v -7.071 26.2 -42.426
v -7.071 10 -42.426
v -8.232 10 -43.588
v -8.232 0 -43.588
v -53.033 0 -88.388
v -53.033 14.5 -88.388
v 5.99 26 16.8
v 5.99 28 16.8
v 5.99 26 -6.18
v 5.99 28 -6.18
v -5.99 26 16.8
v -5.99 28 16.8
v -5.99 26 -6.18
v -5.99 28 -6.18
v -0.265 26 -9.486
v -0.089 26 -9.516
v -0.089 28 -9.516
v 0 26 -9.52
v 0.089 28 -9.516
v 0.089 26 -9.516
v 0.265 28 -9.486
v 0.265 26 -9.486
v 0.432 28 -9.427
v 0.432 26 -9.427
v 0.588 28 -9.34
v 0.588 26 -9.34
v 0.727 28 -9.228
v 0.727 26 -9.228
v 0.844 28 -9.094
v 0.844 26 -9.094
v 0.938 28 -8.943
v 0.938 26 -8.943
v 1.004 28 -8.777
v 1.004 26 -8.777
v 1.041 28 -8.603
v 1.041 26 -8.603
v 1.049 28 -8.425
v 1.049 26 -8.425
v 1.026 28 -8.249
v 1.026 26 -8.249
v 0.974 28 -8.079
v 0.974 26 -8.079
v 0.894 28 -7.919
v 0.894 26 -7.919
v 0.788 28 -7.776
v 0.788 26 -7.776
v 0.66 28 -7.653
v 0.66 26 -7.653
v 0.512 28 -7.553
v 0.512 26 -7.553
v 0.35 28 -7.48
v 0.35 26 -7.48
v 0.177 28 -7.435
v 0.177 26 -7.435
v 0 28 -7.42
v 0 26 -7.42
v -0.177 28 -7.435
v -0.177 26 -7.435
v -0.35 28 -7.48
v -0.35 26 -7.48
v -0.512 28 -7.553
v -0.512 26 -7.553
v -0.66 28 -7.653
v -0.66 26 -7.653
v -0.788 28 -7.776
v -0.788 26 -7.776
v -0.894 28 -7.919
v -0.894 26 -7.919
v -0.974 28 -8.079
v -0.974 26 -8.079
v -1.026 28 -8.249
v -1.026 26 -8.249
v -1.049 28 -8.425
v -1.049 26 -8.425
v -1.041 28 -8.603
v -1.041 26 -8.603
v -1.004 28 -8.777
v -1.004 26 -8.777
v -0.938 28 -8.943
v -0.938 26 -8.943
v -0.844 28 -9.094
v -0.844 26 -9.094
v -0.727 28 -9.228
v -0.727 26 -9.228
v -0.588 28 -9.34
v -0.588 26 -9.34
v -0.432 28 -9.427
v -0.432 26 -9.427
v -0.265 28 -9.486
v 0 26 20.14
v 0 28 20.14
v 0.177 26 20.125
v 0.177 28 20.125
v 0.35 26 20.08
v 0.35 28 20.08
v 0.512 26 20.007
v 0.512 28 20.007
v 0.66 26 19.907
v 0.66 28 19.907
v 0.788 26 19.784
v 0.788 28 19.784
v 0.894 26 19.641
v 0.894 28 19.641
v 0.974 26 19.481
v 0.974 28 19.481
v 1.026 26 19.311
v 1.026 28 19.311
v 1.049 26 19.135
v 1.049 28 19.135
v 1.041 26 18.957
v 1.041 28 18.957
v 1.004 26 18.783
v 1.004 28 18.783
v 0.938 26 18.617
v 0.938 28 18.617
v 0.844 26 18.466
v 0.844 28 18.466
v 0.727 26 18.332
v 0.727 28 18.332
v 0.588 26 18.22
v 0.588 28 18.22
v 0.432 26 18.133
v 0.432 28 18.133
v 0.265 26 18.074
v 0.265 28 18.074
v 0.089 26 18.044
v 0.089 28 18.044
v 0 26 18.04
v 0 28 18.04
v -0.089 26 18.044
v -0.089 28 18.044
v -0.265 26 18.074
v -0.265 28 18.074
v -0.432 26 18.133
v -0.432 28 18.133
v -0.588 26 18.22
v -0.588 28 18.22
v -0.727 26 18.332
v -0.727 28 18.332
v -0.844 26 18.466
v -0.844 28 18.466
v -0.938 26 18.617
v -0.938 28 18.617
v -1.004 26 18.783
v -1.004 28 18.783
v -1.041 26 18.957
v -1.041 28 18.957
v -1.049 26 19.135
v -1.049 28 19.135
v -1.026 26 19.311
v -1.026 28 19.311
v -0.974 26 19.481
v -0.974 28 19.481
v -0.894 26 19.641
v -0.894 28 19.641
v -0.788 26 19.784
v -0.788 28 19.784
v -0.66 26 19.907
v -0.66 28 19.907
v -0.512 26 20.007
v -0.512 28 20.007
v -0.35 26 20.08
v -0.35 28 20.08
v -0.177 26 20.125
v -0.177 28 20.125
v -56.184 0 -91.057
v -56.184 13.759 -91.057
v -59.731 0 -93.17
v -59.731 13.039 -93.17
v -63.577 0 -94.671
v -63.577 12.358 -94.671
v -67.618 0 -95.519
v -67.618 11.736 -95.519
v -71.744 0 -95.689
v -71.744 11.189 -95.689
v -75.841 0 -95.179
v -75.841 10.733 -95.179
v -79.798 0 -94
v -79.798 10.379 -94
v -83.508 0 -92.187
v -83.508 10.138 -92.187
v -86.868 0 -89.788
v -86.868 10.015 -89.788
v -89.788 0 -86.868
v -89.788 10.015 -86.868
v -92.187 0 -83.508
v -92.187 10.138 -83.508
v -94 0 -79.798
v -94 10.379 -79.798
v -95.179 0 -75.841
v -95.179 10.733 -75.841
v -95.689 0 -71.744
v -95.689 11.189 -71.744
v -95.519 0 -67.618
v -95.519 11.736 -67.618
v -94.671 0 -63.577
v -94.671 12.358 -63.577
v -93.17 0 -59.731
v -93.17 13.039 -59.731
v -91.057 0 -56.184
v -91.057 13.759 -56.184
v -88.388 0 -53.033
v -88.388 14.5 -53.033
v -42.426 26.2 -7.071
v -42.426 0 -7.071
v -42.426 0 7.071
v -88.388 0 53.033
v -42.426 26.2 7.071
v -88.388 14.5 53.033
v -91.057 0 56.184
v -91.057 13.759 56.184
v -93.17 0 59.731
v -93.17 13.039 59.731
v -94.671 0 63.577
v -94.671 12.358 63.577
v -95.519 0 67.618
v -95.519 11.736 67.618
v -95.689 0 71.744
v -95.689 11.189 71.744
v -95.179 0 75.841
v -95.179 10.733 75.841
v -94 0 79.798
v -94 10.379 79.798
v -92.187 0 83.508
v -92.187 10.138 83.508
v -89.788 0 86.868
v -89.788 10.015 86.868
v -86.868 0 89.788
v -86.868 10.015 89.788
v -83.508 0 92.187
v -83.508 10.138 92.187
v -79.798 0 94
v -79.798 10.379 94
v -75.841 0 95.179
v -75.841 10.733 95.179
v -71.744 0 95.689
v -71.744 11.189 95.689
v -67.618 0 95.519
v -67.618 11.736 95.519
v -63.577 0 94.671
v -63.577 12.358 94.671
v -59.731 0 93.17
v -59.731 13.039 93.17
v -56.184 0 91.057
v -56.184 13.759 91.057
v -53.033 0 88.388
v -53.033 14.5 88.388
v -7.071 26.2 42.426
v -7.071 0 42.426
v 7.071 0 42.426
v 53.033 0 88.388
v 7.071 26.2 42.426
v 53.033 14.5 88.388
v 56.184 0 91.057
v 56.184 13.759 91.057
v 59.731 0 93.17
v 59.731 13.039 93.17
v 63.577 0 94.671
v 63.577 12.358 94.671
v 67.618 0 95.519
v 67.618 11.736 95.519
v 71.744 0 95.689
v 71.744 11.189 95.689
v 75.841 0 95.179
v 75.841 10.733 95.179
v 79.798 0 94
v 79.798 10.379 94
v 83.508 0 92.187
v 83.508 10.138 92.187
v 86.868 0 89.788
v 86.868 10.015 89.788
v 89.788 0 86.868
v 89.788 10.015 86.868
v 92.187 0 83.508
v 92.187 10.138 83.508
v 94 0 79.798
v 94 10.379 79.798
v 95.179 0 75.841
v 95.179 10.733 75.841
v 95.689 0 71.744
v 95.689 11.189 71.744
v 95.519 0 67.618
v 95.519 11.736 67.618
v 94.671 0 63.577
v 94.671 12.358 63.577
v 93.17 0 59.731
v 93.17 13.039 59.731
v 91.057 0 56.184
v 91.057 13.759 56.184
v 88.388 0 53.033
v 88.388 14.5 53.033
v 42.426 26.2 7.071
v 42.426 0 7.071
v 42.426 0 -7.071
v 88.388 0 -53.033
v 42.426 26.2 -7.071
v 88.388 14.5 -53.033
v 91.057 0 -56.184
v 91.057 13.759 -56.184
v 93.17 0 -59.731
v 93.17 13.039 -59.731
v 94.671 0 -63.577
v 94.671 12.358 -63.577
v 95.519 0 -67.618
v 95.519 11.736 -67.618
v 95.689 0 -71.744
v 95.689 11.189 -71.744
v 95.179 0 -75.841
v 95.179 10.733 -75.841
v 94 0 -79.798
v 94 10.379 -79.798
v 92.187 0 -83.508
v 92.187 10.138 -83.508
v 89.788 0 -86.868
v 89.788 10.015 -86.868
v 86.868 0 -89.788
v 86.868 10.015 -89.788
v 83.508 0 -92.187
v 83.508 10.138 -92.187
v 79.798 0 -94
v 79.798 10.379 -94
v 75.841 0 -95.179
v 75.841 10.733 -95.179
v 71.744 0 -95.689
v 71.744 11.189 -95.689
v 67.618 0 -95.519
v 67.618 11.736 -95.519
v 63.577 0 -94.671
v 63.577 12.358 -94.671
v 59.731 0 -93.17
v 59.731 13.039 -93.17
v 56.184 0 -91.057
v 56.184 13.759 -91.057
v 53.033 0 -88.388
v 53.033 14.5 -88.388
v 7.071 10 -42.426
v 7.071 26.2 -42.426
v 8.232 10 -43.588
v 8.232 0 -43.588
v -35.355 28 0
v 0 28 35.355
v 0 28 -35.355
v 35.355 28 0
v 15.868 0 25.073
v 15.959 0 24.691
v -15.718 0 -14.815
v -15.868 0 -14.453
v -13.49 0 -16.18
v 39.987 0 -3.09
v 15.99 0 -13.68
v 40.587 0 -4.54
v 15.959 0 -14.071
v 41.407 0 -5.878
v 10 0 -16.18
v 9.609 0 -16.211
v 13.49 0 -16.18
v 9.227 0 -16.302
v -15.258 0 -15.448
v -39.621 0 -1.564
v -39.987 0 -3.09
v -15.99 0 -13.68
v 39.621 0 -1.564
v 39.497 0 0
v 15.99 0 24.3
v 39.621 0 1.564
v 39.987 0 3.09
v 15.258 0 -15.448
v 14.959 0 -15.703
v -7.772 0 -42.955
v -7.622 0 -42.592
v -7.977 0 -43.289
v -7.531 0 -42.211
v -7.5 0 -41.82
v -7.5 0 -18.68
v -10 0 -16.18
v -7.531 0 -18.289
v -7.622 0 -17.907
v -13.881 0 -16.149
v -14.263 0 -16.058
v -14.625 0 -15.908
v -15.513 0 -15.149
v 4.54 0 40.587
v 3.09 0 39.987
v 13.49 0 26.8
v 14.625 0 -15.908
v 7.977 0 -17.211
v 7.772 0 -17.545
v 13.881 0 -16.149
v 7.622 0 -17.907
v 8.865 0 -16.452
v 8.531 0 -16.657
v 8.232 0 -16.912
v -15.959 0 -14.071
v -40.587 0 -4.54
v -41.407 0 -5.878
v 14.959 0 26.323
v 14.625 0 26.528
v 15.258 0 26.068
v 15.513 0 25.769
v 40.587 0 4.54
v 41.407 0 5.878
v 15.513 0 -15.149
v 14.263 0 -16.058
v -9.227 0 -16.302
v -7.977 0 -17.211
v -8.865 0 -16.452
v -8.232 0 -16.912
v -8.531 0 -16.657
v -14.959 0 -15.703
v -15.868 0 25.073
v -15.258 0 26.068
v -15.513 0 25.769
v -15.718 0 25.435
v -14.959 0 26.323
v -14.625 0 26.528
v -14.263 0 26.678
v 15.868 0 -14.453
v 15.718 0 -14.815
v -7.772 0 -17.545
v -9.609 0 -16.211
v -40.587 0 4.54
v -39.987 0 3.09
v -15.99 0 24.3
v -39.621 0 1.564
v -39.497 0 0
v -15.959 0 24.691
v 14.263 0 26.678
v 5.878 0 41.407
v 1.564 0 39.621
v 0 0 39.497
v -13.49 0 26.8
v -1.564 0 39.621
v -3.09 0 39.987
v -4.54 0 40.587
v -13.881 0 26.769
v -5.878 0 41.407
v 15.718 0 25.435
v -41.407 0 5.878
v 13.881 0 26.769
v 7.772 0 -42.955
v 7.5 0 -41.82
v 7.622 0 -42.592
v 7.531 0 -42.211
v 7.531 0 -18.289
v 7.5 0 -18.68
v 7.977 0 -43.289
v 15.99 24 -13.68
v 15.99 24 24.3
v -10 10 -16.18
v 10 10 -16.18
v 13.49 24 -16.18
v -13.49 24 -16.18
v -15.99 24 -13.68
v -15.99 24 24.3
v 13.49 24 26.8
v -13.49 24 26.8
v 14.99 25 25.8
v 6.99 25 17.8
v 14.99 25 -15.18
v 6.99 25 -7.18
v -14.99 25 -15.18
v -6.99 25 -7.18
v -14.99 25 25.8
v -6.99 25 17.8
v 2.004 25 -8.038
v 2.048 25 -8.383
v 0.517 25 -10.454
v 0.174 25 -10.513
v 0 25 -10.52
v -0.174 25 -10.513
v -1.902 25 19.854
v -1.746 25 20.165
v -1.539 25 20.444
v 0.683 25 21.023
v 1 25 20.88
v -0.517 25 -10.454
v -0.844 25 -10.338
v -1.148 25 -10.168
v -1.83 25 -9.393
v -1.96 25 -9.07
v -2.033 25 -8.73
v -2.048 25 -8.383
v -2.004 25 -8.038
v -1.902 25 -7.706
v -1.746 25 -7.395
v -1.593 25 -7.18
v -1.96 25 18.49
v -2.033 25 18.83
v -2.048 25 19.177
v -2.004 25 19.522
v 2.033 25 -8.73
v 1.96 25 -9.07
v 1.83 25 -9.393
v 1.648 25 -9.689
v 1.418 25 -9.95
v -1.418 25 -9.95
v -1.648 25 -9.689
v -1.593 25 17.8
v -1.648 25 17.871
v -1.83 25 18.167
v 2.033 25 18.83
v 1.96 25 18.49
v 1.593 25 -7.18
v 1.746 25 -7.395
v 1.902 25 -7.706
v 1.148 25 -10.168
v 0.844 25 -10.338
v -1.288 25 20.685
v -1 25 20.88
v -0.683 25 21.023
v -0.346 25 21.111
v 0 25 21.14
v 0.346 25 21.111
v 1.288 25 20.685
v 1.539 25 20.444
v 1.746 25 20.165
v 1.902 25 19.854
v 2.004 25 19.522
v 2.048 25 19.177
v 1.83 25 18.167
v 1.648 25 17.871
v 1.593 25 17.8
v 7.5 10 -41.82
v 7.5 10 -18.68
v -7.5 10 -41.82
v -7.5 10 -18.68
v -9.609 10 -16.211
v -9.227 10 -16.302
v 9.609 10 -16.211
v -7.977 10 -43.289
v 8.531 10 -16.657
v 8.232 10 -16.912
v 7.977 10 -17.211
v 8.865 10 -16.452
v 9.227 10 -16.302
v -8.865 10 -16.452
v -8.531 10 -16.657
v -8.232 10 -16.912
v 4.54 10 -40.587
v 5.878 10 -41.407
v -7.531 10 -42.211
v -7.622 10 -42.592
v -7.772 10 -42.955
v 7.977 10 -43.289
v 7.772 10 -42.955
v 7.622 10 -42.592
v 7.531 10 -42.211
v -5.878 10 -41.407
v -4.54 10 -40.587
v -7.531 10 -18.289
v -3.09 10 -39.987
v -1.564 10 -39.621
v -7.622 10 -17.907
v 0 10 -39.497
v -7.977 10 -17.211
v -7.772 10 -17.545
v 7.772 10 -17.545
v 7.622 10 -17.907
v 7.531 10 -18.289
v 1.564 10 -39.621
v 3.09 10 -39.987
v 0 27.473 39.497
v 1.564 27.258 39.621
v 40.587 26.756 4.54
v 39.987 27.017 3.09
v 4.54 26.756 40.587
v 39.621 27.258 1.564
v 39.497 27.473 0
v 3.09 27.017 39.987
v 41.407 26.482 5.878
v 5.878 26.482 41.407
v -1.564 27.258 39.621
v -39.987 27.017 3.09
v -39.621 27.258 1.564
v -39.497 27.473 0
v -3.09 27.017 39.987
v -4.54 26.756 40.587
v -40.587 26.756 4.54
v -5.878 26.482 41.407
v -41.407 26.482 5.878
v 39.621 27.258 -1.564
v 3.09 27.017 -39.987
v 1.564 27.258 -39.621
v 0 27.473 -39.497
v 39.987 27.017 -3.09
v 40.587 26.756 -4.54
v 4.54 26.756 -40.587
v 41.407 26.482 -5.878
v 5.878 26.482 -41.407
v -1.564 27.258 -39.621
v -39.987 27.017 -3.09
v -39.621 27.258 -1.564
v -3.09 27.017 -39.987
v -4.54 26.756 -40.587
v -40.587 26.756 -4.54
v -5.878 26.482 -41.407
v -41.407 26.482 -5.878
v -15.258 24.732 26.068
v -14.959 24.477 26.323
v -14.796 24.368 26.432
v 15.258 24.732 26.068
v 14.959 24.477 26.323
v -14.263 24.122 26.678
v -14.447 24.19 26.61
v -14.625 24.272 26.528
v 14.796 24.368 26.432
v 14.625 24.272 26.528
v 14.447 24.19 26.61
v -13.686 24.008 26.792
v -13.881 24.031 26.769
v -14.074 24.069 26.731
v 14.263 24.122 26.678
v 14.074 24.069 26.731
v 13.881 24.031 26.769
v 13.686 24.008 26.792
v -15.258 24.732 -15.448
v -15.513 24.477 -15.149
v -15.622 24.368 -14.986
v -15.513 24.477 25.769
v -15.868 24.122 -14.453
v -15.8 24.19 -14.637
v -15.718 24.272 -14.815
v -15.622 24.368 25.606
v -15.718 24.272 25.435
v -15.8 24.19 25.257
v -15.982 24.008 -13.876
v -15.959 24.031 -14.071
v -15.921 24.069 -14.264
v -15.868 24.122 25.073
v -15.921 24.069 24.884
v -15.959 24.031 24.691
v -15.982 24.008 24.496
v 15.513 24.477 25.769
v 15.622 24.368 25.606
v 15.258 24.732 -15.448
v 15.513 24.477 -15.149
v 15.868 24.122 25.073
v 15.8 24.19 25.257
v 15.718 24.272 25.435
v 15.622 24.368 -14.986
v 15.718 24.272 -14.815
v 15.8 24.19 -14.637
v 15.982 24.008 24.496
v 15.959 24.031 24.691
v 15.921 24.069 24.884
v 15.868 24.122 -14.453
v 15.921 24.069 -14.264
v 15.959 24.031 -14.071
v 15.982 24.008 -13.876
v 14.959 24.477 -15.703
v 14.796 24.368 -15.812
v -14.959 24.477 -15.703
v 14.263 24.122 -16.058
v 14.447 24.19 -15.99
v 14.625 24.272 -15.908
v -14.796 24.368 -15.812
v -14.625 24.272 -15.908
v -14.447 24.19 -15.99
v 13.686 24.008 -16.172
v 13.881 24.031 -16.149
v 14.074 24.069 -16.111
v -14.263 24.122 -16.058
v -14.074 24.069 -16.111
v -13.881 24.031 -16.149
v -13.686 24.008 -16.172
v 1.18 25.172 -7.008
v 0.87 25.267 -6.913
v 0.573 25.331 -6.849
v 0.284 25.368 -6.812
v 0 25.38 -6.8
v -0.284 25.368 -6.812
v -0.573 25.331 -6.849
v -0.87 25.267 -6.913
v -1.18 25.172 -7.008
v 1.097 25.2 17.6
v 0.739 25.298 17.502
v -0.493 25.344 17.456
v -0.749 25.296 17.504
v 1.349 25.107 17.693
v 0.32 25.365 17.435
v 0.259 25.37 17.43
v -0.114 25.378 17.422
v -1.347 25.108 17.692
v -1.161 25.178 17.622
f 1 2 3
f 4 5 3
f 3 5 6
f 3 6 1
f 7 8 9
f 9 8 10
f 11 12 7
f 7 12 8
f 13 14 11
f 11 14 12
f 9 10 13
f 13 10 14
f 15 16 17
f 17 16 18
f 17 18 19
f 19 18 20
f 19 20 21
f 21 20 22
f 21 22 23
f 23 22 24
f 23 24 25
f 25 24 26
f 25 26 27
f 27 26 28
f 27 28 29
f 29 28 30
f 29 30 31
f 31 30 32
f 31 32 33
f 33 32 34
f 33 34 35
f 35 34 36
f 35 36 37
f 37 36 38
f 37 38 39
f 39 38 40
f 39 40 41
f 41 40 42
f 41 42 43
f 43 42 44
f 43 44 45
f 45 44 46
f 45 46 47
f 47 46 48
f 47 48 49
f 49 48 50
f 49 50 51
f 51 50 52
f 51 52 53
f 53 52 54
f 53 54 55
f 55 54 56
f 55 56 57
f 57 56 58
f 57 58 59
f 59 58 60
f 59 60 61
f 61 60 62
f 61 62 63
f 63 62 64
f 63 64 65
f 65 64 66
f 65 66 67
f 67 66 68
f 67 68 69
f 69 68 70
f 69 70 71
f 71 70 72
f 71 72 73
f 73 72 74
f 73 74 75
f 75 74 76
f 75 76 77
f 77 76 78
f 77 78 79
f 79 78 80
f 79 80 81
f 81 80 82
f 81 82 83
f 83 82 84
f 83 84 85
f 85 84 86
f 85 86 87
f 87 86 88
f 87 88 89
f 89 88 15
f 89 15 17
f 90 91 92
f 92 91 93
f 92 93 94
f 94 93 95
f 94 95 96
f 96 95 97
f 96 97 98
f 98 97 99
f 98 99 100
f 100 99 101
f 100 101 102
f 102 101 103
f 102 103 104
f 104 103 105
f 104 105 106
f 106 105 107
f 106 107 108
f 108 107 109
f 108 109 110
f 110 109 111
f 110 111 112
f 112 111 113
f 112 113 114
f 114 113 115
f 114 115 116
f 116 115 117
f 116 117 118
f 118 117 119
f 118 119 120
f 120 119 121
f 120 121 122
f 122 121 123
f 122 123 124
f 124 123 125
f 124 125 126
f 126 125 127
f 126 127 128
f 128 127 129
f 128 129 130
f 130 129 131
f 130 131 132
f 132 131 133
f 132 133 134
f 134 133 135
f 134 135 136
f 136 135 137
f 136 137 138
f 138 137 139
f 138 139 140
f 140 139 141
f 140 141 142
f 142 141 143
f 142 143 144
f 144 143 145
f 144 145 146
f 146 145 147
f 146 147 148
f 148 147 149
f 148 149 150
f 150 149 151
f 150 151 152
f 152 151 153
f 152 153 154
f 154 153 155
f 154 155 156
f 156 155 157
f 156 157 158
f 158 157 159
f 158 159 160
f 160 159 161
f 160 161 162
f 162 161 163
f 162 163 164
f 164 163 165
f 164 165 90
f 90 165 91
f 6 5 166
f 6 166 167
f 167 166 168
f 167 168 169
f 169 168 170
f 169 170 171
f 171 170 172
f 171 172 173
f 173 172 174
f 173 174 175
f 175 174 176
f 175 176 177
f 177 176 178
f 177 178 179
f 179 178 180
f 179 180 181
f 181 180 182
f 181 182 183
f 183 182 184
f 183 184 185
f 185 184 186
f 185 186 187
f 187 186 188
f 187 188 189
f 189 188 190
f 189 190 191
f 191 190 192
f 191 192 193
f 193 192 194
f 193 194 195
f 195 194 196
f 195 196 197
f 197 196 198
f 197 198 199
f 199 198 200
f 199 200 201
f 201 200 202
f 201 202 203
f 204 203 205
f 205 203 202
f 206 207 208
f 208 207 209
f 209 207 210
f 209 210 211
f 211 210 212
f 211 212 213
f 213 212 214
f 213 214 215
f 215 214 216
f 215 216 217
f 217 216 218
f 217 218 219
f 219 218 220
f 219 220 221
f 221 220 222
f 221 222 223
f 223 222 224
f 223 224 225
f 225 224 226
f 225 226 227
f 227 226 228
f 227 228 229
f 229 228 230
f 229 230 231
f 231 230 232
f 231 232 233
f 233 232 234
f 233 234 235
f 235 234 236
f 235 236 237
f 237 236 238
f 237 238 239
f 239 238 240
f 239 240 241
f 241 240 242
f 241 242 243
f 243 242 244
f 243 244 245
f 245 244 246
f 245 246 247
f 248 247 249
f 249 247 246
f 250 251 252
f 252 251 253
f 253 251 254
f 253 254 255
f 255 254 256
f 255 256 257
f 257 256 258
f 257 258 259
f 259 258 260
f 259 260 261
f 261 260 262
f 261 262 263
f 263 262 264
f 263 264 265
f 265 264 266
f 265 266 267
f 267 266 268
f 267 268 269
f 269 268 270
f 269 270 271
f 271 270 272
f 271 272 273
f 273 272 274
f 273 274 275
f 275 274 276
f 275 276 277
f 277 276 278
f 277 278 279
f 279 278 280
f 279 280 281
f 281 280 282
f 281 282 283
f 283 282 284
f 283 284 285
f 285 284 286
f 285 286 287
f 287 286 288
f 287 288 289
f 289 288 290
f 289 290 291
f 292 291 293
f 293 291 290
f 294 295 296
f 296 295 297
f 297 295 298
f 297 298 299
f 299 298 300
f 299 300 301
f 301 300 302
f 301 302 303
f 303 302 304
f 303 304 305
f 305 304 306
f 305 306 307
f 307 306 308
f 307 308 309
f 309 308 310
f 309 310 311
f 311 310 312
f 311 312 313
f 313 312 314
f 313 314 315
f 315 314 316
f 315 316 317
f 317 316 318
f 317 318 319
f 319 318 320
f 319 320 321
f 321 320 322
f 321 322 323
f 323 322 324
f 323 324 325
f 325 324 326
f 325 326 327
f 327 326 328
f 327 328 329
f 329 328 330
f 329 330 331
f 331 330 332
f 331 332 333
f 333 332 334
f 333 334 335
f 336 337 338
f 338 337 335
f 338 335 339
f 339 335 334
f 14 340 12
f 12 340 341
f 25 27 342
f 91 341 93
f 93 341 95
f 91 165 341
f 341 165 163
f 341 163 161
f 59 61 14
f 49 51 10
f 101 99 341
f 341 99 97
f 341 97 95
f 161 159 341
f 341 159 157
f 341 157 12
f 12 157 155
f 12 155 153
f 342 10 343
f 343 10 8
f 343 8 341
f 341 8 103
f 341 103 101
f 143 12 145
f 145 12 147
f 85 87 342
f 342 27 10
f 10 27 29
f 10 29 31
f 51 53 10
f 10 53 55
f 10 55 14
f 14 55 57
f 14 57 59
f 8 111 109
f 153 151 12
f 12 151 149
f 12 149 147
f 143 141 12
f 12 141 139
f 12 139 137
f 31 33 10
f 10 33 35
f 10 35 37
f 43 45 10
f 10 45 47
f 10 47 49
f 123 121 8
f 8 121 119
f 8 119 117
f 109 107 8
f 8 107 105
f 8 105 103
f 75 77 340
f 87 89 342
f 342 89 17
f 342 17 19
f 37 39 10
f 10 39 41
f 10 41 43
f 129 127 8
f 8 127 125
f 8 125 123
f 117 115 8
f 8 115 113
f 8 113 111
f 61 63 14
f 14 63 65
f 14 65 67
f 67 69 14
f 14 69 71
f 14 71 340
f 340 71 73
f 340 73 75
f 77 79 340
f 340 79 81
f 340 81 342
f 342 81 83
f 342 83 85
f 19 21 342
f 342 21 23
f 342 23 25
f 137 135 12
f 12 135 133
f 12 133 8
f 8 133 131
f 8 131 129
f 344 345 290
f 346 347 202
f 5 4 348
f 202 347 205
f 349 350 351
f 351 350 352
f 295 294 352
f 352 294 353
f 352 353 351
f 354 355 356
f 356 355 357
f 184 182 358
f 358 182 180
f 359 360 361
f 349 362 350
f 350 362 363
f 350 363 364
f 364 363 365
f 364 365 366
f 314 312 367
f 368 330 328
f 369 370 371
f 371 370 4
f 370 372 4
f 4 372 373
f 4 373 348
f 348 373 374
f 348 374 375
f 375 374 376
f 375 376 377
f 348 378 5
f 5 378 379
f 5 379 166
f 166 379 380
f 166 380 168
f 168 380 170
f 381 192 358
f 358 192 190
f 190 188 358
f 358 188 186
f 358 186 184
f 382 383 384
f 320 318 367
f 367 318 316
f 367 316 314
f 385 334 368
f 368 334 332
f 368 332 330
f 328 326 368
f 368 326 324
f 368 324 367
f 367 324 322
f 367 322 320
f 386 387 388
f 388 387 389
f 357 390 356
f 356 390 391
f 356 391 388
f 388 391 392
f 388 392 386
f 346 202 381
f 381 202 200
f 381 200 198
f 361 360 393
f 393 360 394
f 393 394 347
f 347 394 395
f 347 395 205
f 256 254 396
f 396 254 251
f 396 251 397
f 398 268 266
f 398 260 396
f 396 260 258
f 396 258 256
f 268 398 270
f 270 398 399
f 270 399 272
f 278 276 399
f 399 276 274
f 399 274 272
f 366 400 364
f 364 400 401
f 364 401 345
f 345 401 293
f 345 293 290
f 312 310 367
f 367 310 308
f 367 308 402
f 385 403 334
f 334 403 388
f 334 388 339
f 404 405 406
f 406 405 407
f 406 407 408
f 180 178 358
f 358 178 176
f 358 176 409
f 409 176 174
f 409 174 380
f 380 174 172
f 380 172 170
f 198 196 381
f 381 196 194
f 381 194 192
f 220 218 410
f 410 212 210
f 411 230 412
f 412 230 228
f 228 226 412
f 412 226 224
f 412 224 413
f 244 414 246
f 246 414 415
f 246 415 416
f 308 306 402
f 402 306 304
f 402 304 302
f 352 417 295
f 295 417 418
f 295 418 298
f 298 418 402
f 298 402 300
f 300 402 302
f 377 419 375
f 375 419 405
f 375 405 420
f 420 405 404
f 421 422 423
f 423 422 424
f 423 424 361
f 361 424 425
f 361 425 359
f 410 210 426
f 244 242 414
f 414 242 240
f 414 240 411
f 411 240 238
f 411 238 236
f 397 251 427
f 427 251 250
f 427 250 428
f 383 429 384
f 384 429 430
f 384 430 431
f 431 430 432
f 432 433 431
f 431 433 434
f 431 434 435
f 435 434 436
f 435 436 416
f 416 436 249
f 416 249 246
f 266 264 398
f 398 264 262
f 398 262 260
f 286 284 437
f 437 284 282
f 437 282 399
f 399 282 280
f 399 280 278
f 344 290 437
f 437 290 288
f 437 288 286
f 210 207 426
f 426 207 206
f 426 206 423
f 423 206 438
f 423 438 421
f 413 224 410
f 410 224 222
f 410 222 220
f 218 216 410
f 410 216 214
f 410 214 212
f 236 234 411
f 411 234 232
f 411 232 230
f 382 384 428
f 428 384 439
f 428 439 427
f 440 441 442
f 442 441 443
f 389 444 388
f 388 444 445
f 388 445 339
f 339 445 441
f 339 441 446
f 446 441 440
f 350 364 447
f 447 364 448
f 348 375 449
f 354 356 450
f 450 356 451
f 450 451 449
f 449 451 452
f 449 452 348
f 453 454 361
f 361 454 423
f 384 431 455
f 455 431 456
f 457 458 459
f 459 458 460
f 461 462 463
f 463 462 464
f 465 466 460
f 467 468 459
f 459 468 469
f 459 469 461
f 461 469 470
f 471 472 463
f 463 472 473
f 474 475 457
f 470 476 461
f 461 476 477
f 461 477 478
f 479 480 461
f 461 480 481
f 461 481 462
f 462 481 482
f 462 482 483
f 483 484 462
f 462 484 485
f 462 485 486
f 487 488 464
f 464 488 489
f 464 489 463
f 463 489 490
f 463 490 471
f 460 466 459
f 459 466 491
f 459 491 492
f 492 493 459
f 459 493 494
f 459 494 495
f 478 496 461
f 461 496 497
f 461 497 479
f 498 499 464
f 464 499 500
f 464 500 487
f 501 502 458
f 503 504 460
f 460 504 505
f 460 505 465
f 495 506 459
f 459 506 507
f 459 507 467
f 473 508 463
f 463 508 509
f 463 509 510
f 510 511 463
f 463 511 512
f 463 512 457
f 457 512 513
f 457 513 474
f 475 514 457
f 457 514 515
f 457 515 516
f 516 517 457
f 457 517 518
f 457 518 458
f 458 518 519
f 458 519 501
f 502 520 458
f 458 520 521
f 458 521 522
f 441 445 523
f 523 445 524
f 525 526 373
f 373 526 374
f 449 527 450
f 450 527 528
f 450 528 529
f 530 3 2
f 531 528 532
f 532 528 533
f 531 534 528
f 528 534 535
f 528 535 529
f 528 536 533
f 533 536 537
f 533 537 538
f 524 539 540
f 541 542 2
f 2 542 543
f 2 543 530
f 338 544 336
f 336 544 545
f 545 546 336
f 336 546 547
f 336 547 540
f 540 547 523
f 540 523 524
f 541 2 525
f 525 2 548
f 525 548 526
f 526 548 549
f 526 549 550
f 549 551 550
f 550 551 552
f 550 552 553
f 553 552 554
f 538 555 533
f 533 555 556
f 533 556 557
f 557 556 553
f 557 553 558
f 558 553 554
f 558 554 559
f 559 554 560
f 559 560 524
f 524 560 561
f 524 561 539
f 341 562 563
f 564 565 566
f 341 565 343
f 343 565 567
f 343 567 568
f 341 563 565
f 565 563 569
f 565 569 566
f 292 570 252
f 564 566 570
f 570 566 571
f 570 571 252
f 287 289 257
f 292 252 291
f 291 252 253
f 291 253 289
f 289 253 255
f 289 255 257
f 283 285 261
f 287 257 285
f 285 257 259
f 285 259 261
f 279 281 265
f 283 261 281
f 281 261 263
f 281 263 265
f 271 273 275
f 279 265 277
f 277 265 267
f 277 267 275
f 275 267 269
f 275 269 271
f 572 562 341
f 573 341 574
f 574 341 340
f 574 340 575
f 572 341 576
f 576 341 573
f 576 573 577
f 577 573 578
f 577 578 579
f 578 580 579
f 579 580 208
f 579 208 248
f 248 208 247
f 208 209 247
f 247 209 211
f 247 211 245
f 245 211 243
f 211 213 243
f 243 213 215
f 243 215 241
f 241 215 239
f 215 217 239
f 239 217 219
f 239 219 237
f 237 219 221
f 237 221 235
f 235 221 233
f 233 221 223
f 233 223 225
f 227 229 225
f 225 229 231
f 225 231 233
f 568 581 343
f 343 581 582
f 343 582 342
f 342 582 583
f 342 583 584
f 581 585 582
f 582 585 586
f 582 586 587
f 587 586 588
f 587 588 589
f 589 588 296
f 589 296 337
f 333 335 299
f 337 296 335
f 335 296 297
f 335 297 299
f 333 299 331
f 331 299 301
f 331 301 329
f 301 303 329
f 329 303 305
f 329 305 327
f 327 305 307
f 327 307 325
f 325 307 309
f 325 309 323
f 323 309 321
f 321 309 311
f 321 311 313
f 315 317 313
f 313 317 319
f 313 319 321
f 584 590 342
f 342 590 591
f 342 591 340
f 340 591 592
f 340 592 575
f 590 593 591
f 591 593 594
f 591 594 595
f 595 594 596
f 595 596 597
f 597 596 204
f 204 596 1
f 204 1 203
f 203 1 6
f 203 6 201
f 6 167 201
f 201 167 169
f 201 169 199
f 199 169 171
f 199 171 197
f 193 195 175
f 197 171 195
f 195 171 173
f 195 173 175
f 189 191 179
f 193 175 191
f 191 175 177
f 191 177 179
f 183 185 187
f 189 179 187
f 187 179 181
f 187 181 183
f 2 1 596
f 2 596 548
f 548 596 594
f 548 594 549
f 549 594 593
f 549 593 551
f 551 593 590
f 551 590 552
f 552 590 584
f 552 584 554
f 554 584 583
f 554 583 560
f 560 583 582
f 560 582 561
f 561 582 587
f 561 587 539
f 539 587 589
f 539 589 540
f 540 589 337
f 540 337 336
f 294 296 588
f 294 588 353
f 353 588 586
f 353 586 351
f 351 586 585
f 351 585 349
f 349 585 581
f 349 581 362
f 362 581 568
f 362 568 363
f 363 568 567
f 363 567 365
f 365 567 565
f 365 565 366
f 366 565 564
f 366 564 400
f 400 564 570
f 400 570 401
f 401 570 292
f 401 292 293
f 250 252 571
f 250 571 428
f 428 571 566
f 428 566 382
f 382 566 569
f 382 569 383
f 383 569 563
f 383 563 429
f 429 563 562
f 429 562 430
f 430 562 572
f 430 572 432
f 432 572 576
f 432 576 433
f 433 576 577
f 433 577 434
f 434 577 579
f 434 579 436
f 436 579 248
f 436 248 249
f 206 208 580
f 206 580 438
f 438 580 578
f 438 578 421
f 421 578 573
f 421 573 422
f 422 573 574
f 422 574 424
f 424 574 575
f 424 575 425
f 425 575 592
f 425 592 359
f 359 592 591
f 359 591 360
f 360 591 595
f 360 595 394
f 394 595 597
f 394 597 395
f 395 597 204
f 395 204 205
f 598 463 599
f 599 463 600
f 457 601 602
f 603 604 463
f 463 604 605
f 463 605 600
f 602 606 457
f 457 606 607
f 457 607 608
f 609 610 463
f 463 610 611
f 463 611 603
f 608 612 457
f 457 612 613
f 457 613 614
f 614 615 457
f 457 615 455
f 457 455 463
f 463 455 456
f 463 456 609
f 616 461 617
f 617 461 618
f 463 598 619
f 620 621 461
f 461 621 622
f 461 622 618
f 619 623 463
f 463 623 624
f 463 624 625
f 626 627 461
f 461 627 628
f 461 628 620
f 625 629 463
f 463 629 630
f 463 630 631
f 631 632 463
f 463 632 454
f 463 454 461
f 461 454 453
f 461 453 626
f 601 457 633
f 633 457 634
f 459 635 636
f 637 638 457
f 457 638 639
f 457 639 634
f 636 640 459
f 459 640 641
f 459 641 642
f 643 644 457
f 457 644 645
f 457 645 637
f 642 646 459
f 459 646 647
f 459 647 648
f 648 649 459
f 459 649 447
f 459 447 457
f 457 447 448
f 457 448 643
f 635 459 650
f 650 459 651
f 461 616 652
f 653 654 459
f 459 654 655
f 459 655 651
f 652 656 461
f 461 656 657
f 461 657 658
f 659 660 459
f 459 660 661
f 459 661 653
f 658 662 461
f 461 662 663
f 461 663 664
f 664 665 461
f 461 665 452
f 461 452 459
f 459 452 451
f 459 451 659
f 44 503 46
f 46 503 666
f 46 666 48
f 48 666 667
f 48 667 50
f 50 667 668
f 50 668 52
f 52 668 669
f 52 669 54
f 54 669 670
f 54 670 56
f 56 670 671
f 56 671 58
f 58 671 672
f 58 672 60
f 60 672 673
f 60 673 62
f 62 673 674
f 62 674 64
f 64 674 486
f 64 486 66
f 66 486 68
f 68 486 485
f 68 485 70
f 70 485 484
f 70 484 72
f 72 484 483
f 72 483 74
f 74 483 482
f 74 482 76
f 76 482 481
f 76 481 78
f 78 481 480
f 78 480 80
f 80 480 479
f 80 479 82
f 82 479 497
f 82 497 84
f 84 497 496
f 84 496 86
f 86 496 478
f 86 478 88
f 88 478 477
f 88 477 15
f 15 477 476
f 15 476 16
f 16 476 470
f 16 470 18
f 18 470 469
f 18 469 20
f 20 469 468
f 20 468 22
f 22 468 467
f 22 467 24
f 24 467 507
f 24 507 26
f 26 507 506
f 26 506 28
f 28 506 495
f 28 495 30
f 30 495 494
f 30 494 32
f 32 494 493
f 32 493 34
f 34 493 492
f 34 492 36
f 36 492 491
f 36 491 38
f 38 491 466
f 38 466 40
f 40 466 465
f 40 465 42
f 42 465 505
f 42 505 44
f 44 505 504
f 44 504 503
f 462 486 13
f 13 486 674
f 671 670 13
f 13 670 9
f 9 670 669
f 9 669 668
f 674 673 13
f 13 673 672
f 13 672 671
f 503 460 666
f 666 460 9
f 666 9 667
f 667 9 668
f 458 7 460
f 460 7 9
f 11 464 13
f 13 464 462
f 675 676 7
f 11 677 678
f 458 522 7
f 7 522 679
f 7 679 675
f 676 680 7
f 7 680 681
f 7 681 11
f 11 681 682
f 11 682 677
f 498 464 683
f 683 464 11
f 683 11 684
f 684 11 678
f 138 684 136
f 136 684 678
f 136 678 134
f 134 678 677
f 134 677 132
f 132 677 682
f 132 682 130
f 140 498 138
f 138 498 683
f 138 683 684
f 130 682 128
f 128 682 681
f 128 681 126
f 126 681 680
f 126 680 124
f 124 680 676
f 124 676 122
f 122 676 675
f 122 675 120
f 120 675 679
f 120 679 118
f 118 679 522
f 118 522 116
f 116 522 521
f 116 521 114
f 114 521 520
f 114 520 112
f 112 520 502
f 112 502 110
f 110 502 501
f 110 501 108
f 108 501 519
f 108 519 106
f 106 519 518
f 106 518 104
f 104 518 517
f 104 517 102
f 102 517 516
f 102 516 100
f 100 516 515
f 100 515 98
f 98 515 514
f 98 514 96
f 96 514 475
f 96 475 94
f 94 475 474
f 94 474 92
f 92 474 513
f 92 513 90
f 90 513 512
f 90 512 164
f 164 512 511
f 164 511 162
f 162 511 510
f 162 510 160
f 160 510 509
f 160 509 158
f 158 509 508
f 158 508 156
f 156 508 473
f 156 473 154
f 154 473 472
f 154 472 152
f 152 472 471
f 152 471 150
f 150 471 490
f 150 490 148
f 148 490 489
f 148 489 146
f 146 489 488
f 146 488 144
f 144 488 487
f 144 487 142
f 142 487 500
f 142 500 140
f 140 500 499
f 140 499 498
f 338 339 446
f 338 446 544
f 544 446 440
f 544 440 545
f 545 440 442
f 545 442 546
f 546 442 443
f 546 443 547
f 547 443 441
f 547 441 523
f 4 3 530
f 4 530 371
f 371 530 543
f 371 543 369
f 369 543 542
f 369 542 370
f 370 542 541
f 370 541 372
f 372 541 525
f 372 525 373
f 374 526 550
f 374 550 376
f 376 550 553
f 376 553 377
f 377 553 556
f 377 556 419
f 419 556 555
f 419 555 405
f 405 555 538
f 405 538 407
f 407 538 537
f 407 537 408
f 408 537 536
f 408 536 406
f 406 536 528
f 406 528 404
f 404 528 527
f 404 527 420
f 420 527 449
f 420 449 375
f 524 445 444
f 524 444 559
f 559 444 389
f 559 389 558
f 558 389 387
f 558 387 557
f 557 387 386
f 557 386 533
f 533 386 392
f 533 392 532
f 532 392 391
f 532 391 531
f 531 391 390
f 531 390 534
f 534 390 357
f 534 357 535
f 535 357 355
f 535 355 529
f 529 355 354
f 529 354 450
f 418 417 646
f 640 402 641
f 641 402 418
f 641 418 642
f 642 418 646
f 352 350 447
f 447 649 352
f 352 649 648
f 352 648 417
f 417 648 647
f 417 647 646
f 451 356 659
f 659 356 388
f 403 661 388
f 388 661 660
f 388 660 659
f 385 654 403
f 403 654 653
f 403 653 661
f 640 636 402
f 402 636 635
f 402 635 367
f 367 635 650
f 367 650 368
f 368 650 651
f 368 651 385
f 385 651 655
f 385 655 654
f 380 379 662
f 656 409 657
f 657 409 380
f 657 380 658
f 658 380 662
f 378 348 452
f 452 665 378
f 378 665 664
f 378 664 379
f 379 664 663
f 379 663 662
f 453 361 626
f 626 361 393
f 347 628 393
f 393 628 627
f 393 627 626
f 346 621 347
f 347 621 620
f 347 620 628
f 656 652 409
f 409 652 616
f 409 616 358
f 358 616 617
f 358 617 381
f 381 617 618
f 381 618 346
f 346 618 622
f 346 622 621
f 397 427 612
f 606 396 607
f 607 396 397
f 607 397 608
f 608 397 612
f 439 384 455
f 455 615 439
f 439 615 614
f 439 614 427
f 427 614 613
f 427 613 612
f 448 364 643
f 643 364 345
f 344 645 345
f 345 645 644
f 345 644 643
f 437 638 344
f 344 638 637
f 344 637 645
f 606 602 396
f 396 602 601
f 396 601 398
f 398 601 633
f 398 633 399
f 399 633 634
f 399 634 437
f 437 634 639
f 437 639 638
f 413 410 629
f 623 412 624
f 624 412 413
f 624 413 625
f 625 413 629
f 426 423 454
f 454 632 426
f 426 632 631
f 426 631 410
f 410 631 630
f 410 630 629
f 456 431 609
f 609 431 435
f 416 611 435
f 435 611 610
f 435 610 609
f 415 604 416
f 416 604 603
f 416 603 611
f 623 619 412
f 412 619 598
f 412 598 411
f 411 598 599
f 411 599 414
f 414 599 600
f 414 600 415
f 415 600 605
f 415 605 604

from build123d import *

# Parameters (mm, degrees)
BOSS_EXTRUDE2_DEPTH = 28
SKETCH3_R           = 1.05
SKETCH3_W           = 11.98
SKETCH3_H           = 22.98
CUT_EXTRUDE1_DEPTH  = 28
CUT_EXTRUDE2_START  = -25
SKETCH4_R           = 1.05
SKETCH4_W           = 11.98
SKETCH4_H           = 22.98
CUT_EXTRUDE2_DEPTH  = 25
CUT_EXTRUDE4_DEPTH  = 10
CUT_EXTRUDE5_REACH  = 164.782
CIRPATTERN1_COUNT   = 4
FILLET1_R           = 10
CHAMFER1_SIZE       = 1
FILLET2_R           = 2.5


with BuildPart() as part:
    # Sketch1 → Boss-Extrude2 (new body)
    with BuildSketch(Plane(origin=(0, 0, 0), x_dir=(1, 0, 0), z_dir=(0, 1, 0))):
        with BuildLine():
            Line((0, 35.355339059), (53.033008589, 88.388347648))
            ThreePointArc((53.033008589, 88.388347648), (88.388347648, 88.388347648), (88.388347648, 53.033008589))
            Line((88.388347648, 53.033008589), (35.355339059, 0))
            Line((35.355339059, 0), (88.388347648, -53.033008589))
            ThreePointArc((88.388347648, -53.033008589), (88.388347648, -88.388347648), (53.033008589, -88.388347648))
            Line((53.033008589, -88.388347648), (0, -35.355339059))
            Line((0, -35.355339059), (-53.033008589, -88.388347648))
            ThreePointArc((-53.033008589, -88.388347648), (-88.388347648, -88.388347648), (-88.388347648, -53.033008589))
            Line((-88.388347648, -53.033008589), (-35.355339059, 0))
            Line((-35.355339059, 0), (-88.388347648, 53.033008589))
            ThreePointArc((-88.388347648, 53.033008589), (-88.388347648, 88.388347648), (-53.033008589, 88.388347648))
            Line((-53.033008589, 88.388347648), (0, 35.355339059))
        make_face()
    extrude(amount=BOSS_EXTRUDE2_DEPTH)

    # Sketch3 → Cut-Extrude1 (cut)
    with BuildSketch(Plane(origin=(0, 28, 0), x_dir=(1, 0, 0), z_dir=(0, 1, 0))):
        with Locations(Location((0, 8.47, 0), (0, 0, 270))):
            Circle(SKETCH3_R)
        with Locations(Location((0, -19.09, 0), (0, 0, 90))):
            Circle(SKETCH3_R)
        with Locations((0, -5.31)):
            Rectangle(SKETCH3_W, SKETCH3_H)
    extrude(amount=-CUT_EXTRUDE1_DEPTH, mode=Mode.SUBTRACT)

    # Sketch4 → Cut-Extrude2 (cut)
    with BuildSketch(Plane.XZ.offset(CUT_EXTRUDE2_START)):
        Polygon((15.99, -16.18), (15.99, 26.8), (7.5, 26.8), (-7.5, 26.8), (-15.99, 26.8), (-15.99, -16.18), (-7.5, -16.18), (7.5, -16.18), align=None)
        with Locations(Location((0, -8.47, 0), (0, 0, 90))):
            Circle(SKETCH4_R, mode=Mode.SUBTRACT)
        with Locations(Location((0, 19.09, 0), (0, 0, 270))):
            Circle(SKETCH4_R, mode=Mode.SUBTRACT)
        with Locations((0, 5.31)):
            Rectangle(SKETCH4_W, SKETCH4_H, mode=Mode.SUBTRACT)
    extrude(amount=CUT_EXTRUDE2_DEPTH, mode=Mode.SUBTRACT)

    # Sketch4<4> → Cut-Extrude4 (cut)
    with BuildSketch(Plane.XZ):
        Polygon((-7.5, -16.18), (-7.5, -42.855339059), (0, -35.355339059), (7.5, -42.855339059), (7.5, -16.18), align=None)
    extrude(amount=-CUT_EXTRUDE4_DEPTH, mode=Mode.SUBTRACT)

    # Sketch5 → Cut-Extrude5 (cut, up to next)
    with BuildSketch(Plane(origin=(17.67766953, 0, -17.67766953), x_dir=(-0.7071067811865419, 0, -0.7071067811865532), z_dir=(0.7071067811865532, 0, -0.7071067811865419)), mode=Mode.PRIVATE) as cut_extrude5_sk1:
        Polygon((-25, 28), (-125, 10), (-125, 28), align=None)
    cut_extrude5_tool1 = extrude(cut_extrude5_sk1.sketch, amount=-CUT_EXTRUDE5_REACH, mode=Mode.PRIVATE) & part.part
    cut_extrude5 = cut_extrude5_tool1.solids().sort_by_distance((82.495791, 22, 47.140452))[0]
    add(cut_extrude5, mode=Mode.SUBTRACT)

    # CirPattern1: Cut-Extrude5 ×4 about axis
    cirpattern1_axis = Axis((0, 0, 0), (0, 1, 0))
    for i in range(1, CIRPATTERN1_COUNT):
        add(cut_extrude5.rotate(cirpattern1_axis, i * 360 / CIRPATTERN1_COUNT), mode=Mode.SUBTRACT)

    # Fillet1
    # the kernel refuses this fillet: 10 mm, written as the material it adds along each edge
    with BuildSketch(Plane(origin=(0, 10, -35.355339059), x_dir=(-0.7071067811865379, 0, -0.7071067811865571), z_dir=(0, 1, 0))) as fillet1_piece_1_section:
        with BuildLine():
            CenterArc((FILLET1_R, -FILLET1_R), FILLET1_R, 90, 90)
            Line((0, -FILLET1_R), (0, 0))
            Line((0, 0), (FILLET1_R, 0))
        make_face()
    fillet1_piece_1 = extrude(amount=43, mode=Mode.PRIVATE)
    fillet1_piece_1 = split(fillet1_piece_1, bisect_by=Plane(origin=(-1.101274735, 27.315624415, -39.63102674), z_dir=(0.12526608641625125, -0.9841833239736955, 0.1252660864162533)), keep=Keep.TOP, mode=Mode.PRIVATE)
    fillet1_piece_1 = split(fillet1_piece_1, bisect_by=Plane(origin=(1.101274735, 27.315624415, -39.63102674), z_dir=(-0.1252660864162533, -0.9841833239736955, 0.12526608641625125)), keep=Keep.TOP, mode=Mode.PRIVATE)
    add(fillet1_piece_1)
    with BuildSketch(Plane(origin=(35.355339059, 0, 0), x_dir=(0.7071067811865419, 0, 0.7071067811865532), z_dir=(0, 1, 0))) as fillet1_piece_2_section:
        with BuildLine():
            CenterArc((FILLET1_R, FILLET1_R), FILLET1_R, 180, 90)
            Line((0, FILLET1_R), (0, 0))
            Line((0, 0), (FILLET1_R, 0))
        make_face()
    fillet1_piece_2 = extrude(amount=53, mode=Mode.PRIVATE)
    fillet1_piece_2 = split(fillet1_piece_2, bisect_by=Plane(origin=(40.257461149, 27.157432054, 1.717716892), z_dir=(-0.12526608641625128, -0.9841833239736955, -0.12526608641625328)), keep=Keep.TOP, mode=Mode.PRIVATE)
    fillet1_piece_2 = split(fillet1_piece_2, bisect_by=Plane(origin=(40.257461149, 27.157432054, -1.717716892), z_dir=(-0.1252660864162533, -0.9841833239736955, 0.12526608641625125)), keep=Keep.TOP, mode=Mode.PRIVATE)
    add(fillet1_piece_2)
    with BuildSketch(Plane(origin=(0, 0, 35.355339059), x_dir=(-0.7071067811865579, 0, 0.7071067811865371), z_dir=(0, 1, 0))) as fillet1_piece_3_section:
        with BuildLine():
            CenterArc((FILLET1_R, FILLET1_R), FILLET1_R, 180, 90)
            Line((0, FILLET1_R), (0, 0))
            Line((0, 0), (FILLET1_R, 0))
        make_face()
    fillet1_piece_3 = extrude(amount=53, mode=Mode.PRIVATE)
    fillet1_piece_3 = split(fillet1_piece_3, bisect_by=Plane(origin=(-1.717716892, 27.157432054, 40.257461149), z_dir=(0.1252660864162533, -0.9841833239736955, -0.12526608641625125)), keep=Keep.TOP, mode=Mode.PRIVATE)
    fillet1_piece_3 = split(fillet1_piece_3, bisect_by=Plane(origin=(1.717716892, 27.157432054, 40.257461149), z_dir=(-0.12526608641625128, -0.9841833239736955, -0.12526608641625328)), keep=Keep.TOP, mode=Mode.PRIVATE)
    add(fillet1_piece_3)
    with BuildSketch(Plane(origin=(-35.355339059, 0, 0), x_dir=(-0.7071067811865355, 0, -0.7071067811865597), z_dir=(0, 1, 0))) as fillet1_piece_4_section:
        with BuildLine():
            CenterArc((FILLET1_R, FILLET1_R), FILLET1_R, 180, 90)
            Line((0, FILLET1_R), (0, 0))
            Line((0, 0), (FILLET1_R, 0))
        make_face()
    fillet1_piece_4 = extrude(amount=53, mode=Mode.PRIVATE)
    fillet1_piece_4 = split(fillet1_piece_4, bisect_by=Plane(origin=(-40.257461149, 27.157432054, -1.717716892), z_dir=(0.12526608641625125, -0.9841833239736955, 0.1252660864162533)), keep=Keep.TOP, mode=Mode.PRIVATE)
    fillet1_piece_4 = split(fillet1_piece_4, bisect_by=Plane(origin=(-40.257461149, 27.157432054, 1.717716892), z_dir=(0.1252660864162533, -0.9841833239736955, -0.12526608641625125)), keep=Keep.TOP, mode=Mode.PRIVATE)
    add(fillet1_piece_4)

    # Chamfer1
    # the kernel refuses this chamfer: 1 mm, written as the material it adds along each edge
    with BuildSketch(Plane(origin=(15.99, 25, -18.751682988), x_dir=(0.027495876610585647, -0.9996219169112968, 0), z_dir=(0, 0, 1)), Plane(origin=(-15.99, 25, 29.371682988), x_dir=(-0.027495876610585647, -0.9996219169112968, 0), z_dir=(0, 0, -1))) as chamfer1_piece_1:
        Polygon((CHAMFER1_SIZE * 0.999621916911, -CHAMFER1_SIZE * 0.0274958766106), (-CHAMFER1_SIZE * 0.0274958766106, -CHAMFER1_SIZE * 0.999621916911), (0, 0), align=None)
    extrude(amount=48.123365976)
    with BuildSketch(Plane(origin=(-18.561682988, 25, -16.18), x_dir=(0, -0.9996219169112968, -0.027495876610585647), z_dir=(1, 0, 0)), Plane(origin=(18.561682988, 25, 26.8), x_dir=(0, -0.9996219169112968, 0.027495876610585647), z_dir=(-1, 0, 0))) as chamfer1_piece_2:
        Polygon((CHAMFER1_SIZE * 0.999621916911, -CHAMFER1_SIZE * 0.0274958766106), (-CHAMFER1_SIZE * 0.0274958766106, -CHAMFER1_SIZE * 0.999621916911), (0, 0), align=None)
    extrude(amount=37.123365976)
    # the kernel refuses this chamfer: 1 mm, written as the material it takes off along each edge
    with BuildSketch(Plane(origin=(-5.99, 25, 16.8), x_dir=(0, 0.9996219169112968, -0.027495876610585647), z_dir=(1, 0, 0)), Plane(origin=(5.99, 25, -6.18), x_dir=(0, 0.9996219169112968, 0.02749587661058651), z_dir=(-1, 0, 0))) as chamfer1_2_piece_1:
        Polygon((CHAMFER1_SIZE * 0.999621916911, CHAMFER1_SIZE * 0.0274958766106), (-CHAMFER1_SIZE * 0.0274958766106, CHAMFER1_SIZE * 0.999621916911), (0, 0), align=None)
    extrude(amount=11.98, mode=Mode.SUBTRACT)
    with BuildSketch(Plane(origin=(-5.99, 25, -6.18), x_dir=(0.02749587661057961, 0.999621916911297, 0), z_dir=(0, 0, 1)), Plane(origin=(5.99, 25, 16.8), x_dir=(-0.02749587661058651, 0.9996219169112968, 0), z_dir=(0, 0, -1))) as chamfer1_2_piece_2:
        Polygon((CHAMFER1_SIZE * 0.999621916911, CHAMFER1_SIZE * 0.0274958766106), (-CHAMFER1_SIZE * 0.0274958766106, CHAMFER1_SIZE * 0.999621916911), (0, 0), align=None)
    extrude(amount=22.98, mode=Mode.SUBTRACT)
    with BuildSketch(Plane(origin=(0, 25, 19.09), x_dir=(0, 0, -1), z_dir=(-1, 0, 0))) as chamfer1_2_piece_3:
        Polygon((1.05, -CHAMFER1_SIZE), (1.05 + CHAMFER1_SIZE, 0), (1.05, 0), align=None)
    revolve(axis=Axis((0, 25, 19.09), (0, -1, 0)), mode=Mode.SUBTRACT)
    with BuildSketch(Plane(origin=(0, 25, -8.47), x_dir=(0, 0, 1), z_dir=(1, 0, 0))) as chamfer1_2_piece_4:
        Polygon((1.05, -CHAMFER1_SIZE), (1.05 + CHAMFER1_SIZE, 0), (1.05, 0), align=None)
    revolve(axis=Axis((0, 25, -8.47), (0, -1, 0)), mode=Mode.SUBTRACT)
    with BuildSketch(Plane(origin=(-5.99, 25, -6.18), x_dir=(0.02749587661057961, 0.999621916911297, 0), z_dir=(0, 0, 1))) as chamfer1_2_piece_5a_section:
        Polygon((CHAMFER1_SIZE * 0.999621916911, CHAMFER1_SIZE * 0.0274958766106), (-CHAMFER1_SIZE * 0.0274958766106, CHAMFER1_SIZE * 0.999621916911), (0, 0), align=None)
    chamfer1_2_piece_5a = extrude(amount=25.551682988, mode=Mode.PRIVATE)
    chamfer1_2_piece_5a = split(chamfer1_2_piece_5a, bisect_by=Plane(origin=(-6.319793627, 25.329793627, 16.8), z_dir=(0, 0, 1)), keep=Keep.TOP, mode=Mode.PRIVATE)
    with BuildSketch(Plane(origin=(-8.561682988, 25, 16.8), x_dir=(0, 0.9996219169112968, -0.027495876610585647), z_dir=(1, 0, 0))) as chamfer1_2_piece_5b_section:
        Polygon((CHAMFER1_SIZE * 0.999621916911, CHAMFER1_SIZE * 0.0274958766106), (-CHAMFER1_SIZE * 0.0274958766106, CHAMFER1_SIZE * 0.999621916911), (0, 0), align=None)
    chamfer1_2_piece_5b = extrude(amount=14.551682988, mode=Mode.PRIVATE)
    chamfer1_2_piece_5b = split(chamfer1_2_piece_5b, bisect_by=Plane(origin=(-5.99, 25.329793627, 17.129793627), z_dir=(-1, 0, 0)), keep=Keep.TOP, mode=Mode.PRIVATE)
    chamfer1_2_piece_5 = chamfer1_2_piece_5a & chamfer1_2_piece_5b
    add(chamfer1_2_piece_5, mode=Mode.SUBTRACT)
    with BuildSketch(Plane(origin=(-5.99, 25, 16.8), x_dir=(0, 0.9996219169112968, -0.027495876610585647), z_dir=(1, 0, 0))) as chamfer1_2_piece_6a_section:
        Polygon((CHAMFER1_SIZE * 0.999621916911, CHAMFER1_SIZE * 0.0274958766106), (-CHAMFER1_SIZE * 0.0274958766106, CHAMFER1_SIZE * 0.999621916911), (0, 0), align=None)
    chamfer1_2_piece_6a = extrude(amount=14.551682988, mode=Mode.PRIVATE)
    chamfer1_2_piece_6a = split(chamfer1_2_piece_6a, bisect_by=Plane(origin=(5.99, 25.329793627, 17.129793627), z_dir=(1, 0, 0)), keep=Keep.TOP, mode=Mode.PRIVATE)
    with BuildSketch(Plane(origin=(5.99, 25, 19.371682988), x_dir=(-0.02749587661058651, 0.9996219169112968, 0), z_dir=(0, 0, -1))) as chamfer1_2_piece_6b_section:
        Polygon((CHAMFER1_SIZE * 0.999621916911, CHAMFER1_SIZE * 0.0274958766106), (-CHAMFER1_SIZE * 0.0274958766106, CHAMFER1_SIZE * 0.999621916911), (0, 0), align=None)
    chamfer1_2_piece_6b = extrude(amount=25.551682988, mode=Mode.PRIVATE)
    chamfer1_2_piece_6b = split(chamfer1_2_piece_6b, bisect_by=Plane(origin=(6.319793627, 25.329793627, 16.8), z_dir=(0, 0, 1)), keep=Keep.TOP, mode=Mode.PRIVATE)
    chamfer1_2_piece_6 = chamfer1_2_piece_6a & chamfer1_2_piece_6b
    add(chamfer1_2_piece_6, mode=Mode.SUBTRACT)
    with BuildSketch(Plane(origin=(-5.99, 25, -8.751682988), x_dir=(0.02749587661058651, 0.9996219169112968, 0), z_dir=(0, 0, 1))) as chamfer1_2_piece_7a_section:
        Polygon((CHAMFER1_SIZE * 0.999621916911, CHAMFER1_SIZE * 0.0274958766106), (-CHAMFER1_SIZE * 0.0274958766106, CHAMFER1_SIZE * 0.999621916911), (0, 0), align=None)
    chamfer1_2_piece_7a = extrude(amount=25.551682988, mode=Mode.PRIVATE)
    chamfer1_2_piece_7a = split(chamfer1_2_piece_7a, bisect_by=Plane(origin=(-6.319793627, 25.329793627, -6.18), z_dir=(0, 0, -1)), keep=Keep.TOP, mode=Mode.PRIVATE)
    with BuildSketch(Plane(origin=(5.99, 25, -6.18), x_dir=(0, 0.9996219169112968, 0.02749587661058651), z_dir=(-1, 0, 0))) as chamfer1_2_piece_7b_section:
        Polygon((CHAMFER1_SIZE * 0.999621916911, CHAMFER1_SIZE * 0.0274958766106), (-CHAMFER1_SIZE * 0.0274958766106, CHAMFER1_SIZE * 0.999621916911), (0, 0), align=None)
    chamfer1_2_piece_7b = extrude(amount=14.551682988, mode=Mode.PRIVATE)
    chamfer1_2_piece_7b = split(chamfer1_2_piece_7b, bisect_by=Plane(origin=(-5.99, 25.329793627, -6.509793627), z_dir=(-1, 0, 0)), keep=Keep.TOP, mode=Mode.PRIVATE)
    chamfer1_2_piece_7 = chamfer1_2_piece_7a & chamfer1_2_piece_7b
    add(chamfer1_2_piece_7, mode=Mode.SUBTRACT)
    with BuildSketch(Plane(origin=(8.561682988, 25, -6.18), x_dir=(0, 0.9996219169112968, 0.02749587661058651), z_dir=(-1, 0, 0))) as chamfer1_2_piece_8a_section:
        Polygon((CHAMFER1_SIZE * 0.999621916911, CHAMFER1_SIZE * 0.0274958766106), (-CHAMFER1_SIZE * 0.0274958766106, CHAMFER1_SIZE * 0.999621916911), (0, 0), align=None)
    chamfer1_2_piece_8a = extrude(amount=14.551682988, mode=Mode.PRIVATE)
    chamfer1_2_piece_8a = split(chamfer1_2_piece_8a, bisect_by=Plane(origin=(5.99, 25.329793627, -6.509793627), z_dir=(1, 0, 0)), keep=Keep.TOP, mode=Mode.PRIVATE)
    with BuildSketch(Plane(origin=(5.99, 25, 16.8), x_dir=(-0.02749587661058651, 0.9996219169112968, 0), z_dir=(0, 0, -1))) as chamfer1_2_piece_8b_section:
        Polygon((CHAMFER1_SIZE * 0.999621916911, CHAMFER1_SIZE * 0.0274958766106), (-CHAMFER1_SIZE * 0.0274958766106, CHAMFER1_SIZE * 0.999621916911), (0, 0), align=None)
    chamfer1_2_piece_8b = extrude(amount=25.551682988, mode=Mode.PRIVATE)
    chamfer1_2_piece_8b = split(chamfer1_2_piece_8b, bisect_by=Plane(origin=(6.319793627, 25.329793627, -6.18), z_dir=(0, 0, -1)), keep=Keep.TOP, mode=Mode.PRIVATE)
    chamfer1_2_piece_8 = chamfer1_2_piece_8a & chamfer1_2_piece_8b
    add(chamfer1_2_piece_8, mode=Mode.SUBTRACT)

    # Fillet2
    fillet2_edges = [part.edges().sort_by_distance(p)[0] for p in [
        (7.5, 5, -16.18),
        (7.5, 5, -42.855339059),
        (-7.5, 5, -42.855339059),
        (-7.5, 5, -16.18),
        (15.99, 12, -16.18),
        (-15.99, 12, -16.18),
        (-15.99, 12, 26.8),
        (15.99, 12, 26.8),
    ]]
    fillet(fillet2_edges, radius=FILLET2_R)


solid = part.part
